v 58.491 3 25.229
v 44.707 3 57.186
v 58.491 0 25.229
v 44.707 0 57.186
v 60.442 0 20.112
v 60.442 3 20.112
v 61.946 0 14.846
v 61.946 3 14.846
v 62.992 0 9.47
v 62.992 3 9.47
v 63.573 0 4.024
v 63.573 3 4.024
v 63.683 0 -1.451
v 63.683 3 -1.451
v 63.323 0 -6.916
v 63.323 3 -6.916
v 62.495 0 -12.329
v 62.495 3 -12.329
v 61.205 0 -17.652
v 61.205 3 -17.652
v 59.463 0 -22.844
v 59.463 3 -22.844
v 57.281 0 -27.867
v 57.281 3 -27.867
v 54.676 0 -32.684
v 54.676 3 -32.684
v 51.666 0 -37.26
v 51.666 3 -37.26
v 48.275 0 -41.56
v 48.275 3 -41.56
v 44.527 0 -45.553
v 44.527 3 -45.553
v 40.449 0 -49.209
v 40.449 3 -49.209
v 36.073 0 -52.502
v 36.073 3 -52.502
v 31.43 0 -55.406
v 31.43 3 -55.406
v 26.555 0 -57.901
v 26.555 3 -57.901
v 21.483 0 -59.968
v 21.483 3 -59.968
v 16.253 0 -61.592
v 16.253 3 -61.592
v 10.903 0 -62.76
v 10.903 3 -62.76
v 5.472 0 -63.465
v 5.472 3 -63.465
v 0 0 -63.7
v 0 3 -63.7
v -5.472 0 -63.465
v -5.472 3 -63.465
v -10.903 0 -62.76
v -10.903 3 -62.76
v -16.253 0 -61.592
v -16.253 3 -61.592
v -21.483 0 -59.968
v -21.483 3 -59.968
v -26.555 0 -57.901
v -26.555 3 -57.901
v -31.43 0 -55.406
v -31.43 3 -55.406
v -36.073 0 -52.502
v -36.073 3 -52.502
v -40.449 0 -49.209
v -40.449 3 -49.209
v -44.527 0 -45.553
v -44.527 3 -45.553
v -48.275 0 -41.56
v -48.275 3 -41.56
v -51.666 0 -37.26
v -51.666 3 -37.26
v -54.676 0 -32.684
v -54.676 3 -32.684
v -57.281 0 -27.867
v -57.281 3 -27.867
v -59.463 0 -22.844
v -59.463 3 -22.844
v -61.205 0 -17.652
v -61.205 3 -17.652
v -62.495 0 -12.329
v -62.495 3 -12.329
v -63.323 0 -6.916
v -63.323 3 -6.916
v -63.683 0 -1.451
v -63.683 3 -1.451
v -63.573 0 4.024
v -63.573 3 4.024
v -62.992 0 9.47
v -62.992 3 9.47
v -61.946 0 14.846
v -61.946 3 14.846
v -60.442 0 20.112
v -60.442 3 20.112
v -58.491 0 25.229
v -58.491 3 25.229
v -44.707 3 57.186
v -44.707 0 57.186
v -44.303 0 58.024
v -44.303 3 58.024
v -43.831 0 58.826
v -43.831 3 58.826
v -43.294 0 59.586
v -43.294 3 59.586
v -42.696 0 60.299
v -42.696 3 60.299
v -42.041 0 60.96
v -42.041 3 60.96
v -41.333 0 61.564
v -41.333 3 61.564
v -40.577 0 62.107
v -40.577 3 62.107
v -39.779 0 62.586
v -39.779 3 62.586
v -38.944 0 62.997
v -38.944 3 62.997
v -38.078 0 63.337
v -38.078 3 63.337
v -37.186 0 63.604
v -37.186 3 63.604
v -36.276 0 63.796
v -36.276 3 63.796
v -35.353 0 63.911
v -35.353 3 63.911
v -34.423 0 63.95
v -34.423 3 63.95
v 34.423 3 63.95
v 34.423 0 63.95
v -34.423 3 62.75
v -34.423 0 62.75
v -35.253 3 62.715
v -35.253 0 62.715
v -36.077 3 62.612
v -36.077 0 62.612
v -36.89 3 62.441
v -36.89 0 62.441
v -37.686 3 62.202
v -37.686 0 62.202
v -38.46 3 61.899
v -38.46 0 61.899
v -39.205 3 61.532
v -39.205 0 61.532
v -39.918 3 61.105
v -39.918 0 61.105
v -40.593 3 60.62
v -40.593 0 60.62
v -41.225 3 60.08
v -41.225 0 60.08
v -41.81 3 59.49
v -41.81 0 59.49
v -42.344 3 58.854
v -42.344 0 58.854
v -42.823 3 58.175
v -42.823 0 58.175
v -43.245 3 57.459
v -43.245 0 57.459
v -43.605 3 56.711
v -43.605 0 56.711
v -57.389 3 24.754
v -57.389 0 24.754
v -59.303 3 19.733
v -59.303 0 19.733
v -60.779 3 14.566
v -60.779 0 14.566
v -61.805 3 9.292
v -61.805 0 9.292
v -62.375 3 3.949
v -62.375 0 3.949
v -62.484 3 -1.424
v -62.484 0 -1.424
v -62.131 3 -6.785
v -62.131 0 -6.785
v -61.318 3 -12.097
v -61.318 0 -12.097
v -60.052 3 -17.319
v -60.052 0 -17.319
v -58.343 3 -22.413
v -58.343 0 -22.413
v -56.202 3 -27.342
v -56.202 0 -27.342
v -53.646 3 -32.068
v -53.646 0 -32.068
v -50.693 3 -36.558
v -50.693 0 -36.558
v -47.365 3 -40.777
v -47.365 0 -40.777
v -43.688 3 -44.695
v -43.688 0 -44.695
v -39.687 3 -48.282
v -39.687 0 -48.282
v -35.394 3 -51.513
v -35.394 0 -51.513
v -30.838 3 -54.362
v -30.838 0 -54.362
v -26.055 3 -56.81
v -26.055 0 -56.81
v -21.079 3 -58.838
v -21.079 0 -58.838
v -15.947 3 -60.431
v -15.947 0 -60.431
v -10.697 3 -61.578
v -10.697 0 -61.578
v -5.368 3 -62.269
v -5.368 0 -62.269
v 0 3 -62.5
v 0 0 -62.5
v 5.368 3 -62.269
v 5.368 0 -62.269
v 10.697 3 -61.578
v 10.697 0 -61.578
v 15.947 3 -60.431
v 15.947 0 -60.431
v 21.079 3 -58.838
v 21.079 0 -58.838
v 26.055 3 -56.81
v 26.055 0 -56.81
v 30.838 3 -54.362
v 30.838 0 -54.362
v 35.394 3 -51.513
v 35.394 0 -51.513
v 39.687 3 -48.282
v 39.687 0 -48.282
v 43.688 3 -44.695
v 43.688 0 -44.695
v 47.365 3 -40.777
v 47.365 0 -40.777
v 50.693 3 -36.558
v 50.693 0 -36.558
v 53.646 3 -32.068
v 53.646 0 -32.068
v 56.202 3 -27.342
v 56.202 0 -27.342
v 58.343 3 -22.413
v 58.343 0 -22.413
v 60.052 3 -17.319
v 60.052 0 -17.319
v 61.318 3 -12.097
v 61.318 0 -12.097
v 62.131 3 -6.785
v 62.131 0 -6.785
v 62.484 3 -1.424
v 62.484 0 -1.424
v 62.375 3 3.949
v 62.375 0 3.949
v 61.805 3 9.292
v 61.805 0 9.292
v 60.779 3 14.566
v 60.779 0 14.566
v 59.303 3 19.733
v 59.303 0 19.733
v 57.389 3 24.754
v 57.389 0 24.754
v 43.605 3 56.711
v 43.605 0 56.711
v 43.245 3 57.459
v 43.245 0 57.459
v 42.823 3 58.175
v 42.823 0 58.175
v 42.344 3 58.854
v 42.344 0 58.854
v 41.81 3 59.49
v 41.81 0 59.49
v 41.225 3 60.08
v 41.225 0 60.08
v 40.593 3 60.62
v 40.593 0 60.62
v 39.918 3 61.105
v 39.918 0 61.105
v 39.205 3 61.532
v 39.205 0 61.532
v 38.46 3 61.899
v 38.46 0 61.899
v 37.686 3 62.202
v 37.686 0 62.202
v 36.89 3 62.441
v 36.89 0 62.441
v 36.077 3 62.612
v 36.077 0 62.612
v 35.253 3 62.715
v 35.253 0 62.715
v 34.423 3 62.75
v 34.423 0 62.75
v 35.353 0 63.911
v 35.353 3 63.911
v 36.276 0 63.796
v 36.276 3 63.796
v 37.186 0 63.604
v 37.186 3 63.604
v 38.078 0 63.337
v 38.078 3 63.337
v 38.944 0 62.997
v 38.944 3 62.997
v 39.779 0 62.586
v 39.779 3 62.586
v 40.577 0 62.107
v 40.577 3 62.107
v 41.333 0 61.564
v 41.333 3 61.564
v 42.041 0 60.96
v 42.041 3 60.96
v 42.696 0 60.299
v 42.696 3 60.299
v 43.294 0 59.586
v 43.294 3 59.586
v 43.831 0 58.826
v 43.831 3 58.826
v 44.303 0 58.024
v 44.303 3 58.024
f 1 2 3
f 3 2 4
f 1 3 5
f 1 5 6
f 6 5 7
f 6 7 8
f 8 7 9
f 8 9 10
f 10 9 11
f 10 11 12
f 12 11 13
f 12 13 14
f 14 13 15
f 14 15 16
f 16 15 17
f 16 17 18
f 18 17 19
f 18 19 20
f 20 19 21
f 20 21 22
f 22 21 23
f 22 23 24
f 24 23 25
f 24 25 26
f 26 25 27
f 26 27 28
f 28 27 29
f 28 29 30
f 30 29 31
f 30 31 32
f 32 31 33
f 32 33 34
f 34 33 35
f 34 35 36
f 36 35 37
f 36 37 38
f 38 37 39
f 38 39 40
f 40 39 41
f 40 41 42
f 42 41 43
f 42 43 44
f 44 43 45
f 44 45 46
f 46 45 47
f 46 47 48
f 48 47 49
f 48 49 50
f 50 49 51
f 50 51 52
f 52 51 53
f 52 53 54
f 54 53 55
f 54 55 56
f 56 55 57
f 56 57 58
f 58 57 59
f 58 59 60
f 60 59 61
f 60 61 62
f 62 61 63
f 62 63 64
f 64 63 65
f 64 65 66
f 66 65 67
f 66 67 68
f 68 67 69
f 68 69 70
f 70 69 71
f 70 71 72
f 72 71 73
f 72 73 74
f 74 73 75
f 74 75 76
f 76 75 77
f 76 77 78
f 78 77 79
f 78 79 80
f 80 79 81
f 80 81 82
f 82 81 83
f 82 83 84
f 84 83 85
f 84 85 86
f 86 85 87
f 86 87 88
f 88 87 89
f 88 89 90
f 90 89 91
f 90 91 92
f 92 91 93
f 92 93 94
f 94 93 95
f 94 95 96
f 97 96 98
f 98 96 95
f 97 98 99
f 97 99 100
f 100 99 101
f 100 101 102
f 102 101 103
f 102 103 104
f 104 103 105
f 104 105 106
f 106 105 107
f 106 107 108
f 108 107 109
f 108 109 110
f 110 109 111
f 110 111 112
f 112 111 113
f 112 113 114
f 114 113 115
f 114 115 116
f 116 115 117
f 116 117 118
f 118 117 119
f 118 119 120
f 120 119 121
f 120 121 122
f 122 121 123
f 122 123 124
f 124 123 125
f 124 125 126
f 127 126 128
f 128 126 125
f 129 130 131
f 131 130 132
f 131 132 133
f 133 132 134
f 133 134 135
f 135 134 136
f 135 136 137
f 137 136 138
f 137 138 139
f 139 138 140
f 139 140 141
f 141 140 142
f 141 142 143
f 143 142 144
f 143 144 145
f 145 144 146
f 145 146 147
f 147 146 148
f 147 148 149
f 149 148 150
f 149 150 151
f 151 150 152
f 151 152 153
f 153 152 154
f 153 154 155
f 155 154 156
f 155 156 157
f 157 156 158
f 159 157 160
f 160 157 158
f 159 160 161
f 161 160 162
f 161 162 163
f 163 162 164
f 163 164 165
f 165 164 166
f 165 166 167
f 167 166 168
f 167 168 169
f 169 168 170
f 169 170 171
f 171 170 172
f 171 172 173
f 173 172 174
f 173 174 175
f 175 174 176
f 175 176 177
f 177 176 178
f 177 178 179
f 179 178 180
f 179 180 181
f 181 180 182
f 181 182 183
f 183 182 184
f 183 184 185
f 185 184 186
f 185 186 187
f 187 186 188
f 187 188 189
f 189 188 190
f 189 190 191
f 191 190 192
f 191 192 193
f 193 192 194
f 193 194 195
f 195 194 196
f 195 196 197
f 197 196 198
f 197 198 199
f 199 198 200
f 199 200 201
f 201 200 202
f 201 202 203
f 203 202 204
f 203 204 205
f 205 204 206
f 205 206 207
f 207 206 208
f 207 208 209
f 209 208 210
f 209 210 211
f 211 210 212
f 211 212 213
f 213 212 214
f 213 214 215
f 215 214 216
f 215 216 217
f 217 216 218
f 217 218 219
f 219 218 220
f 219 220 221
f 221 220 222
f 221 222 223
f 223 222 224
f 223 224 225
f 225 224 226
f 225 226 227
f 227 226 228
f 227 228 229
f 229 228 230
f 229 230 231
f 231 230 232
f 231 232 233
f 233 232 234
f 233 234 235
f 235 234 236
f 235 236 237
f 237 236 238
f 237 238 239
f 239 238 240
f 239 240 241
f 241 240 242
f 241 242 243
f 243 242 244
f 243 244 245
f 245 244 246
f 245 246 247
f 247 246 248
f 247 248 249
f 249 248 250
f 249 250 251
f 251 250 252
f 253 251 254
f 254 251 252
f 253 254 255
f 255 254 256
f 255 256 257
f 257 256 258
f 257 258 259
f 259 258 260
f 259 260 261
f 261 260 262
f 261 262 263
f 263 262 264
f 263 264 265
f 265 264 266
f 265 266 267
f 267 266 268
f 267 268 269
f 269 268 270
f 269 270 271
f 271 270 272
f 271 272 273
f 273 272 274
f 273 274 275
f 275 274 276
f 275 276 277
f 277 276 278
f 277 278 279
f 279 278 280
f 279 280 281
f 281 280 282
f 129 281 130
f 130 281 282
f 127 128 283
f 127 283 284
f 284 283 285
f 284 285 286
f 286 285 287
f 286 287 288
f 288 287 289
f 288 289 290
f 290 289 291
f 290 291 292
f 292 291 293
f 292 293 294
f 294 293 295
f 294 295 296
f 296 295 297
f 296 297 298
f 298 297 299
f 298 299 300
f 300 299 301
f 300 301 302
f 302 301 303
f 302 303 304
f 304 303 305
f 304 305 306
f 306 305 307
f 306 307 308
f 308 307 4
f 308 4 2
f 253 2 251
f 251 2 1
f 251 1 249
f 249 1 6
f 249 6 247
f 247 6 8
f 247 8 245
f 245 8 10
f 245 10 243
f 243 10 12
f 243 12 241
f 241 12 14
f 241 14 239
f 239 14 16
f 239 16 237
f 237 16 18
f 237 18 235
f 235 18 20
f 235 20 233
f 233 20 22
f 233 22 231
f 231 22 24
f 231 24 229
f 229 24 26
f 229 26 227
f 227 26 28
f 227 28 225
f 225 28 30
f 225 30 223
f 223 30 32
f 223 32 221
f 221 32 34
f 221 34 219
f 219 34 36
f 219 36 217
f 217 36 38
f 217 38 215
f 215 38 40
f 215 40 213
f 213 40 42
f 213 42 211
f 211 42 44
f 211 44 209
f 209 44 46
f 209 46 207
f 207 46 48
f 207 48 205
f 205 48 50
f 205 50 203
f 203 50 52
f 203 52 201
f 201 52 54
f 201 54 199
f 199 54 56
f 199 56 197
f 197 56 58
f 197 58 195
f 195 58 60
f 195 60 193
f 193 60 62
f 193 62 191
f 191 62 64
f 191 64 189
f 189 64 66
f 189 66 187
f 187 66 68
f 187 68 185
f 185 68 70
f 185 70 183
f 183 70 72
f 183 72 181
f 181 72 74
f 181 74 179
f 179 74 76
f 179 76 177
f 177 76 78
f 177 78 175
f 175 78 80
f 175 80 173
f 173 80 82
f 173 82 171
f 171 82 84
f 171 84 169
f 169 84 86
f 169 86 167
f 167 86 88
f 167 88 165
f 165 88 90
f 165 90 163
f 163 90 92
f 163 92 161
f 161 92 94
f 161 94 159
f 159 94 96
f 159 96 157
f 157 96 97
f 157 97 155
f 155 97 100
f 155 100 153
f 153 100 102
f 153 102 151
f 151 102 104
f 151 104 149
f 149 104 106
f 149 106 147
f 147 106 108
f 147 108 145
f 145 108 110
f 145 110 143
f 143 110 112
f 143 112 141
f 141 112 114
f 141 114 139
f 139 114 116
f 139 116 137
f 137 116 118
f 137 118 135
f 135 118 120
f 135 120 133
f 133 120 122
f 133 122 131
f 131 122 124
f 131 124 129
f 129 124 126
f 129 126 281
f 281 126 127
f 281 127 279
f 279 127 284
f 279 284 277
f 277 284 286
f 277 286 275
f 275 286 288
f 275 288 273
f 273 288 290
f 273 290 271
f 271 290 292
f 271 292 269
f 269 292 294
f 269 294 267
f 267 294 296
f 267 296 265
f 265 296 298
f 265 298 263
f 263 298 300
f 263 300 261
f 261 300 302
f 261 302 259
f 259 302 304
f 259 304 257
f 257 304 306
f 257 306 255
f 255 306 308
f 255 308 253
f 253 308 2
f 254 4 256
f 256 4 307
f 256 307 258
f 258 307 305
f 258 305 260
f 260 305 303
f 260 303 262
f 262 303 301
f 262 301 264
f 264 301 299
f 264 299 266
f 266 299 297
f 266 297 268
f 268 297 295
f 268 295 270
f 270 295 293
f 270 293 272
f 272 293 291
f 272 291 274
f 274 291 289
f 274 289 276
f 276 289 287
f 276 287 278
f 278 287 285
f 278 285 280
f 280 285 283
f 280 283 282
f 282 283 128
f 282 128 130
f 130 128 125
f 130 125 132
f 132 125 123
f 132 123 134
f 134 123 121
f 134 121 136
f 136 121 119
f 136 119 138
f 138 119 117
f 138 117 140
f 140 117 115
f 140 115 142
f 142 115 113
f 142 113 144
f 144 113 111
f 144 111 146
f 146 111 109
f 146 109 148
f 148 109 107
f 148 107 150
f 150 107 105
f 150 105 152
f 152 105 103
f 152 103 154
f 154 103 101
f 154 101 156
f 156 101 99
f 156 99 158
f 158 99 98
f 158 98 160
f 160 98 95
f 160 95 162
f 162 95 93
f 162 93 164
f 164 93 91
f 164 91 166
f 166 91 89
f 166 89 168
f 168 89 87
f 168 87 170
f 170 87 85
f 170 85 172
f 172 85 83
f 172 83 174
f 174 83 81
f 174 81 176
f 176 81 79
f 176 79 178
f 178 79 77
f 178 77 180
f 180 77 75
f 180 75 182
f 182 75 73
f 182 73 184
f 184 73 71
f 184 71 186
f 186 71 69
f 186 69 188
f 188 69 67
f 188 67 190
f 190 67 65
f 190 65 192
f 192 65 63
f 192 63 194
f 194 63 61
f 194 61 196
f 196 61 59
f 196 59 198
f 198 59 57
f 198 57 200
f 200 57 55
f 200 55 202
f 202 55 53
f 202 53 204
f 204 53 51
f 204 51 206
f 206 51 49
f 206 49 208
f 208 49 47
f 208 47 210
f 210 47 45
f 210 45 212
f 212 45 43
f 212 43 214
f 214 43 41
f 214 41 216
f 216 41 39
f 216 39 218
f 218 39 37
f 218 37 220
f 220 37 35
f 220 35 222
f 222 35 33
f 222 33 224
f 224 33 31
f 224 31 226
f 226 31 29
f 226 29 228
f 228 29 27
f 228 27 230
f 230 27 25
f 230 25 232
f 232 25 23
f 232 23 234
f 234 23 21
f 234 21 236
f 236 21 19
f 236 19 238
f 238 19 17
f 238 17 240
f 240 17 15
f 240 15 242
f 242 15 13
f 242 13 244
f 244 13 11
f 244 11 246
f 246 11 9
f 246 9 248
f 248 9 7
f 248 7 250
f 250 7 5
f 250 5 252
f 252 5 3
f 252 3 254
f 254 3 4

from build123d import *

# Parameters (mm, degrees)
BOSS_EXTRUDE1_DEPTH = 3


with BuildPart() as part:
    # Sketch1 → Boss-Extrude1 (new body)
    with BuildSketch(Plane(origin=(0, 0, 0), x_dir=(1, 0, 0), z_dir=(0, 1, 0))):
        with BuildLine():
            ThreePointArc((34.422746677, -63.95), (40.577345115, -62.107399108), (44.706859879, -57.185878226))
            Line((44.706859879, -57.185878226), (58.490893839, -25.229057412))
            ThreePointArc((58.490893839, -25.229057412), (0, 63.7), (-58.490893839, -25.229057412))
            Line((-58.490893839, -25.229057412), (-44.706859879, -57.185878226))
            ThreePointArc((-44.706859879, -57.185878226), (-40.577345115, -62.107399108), (-34.422746677, -63.95))
            Line((-34.422746677, -63.95), (34.422746677, -63.95))
        make_face()
        with BuildLine():
            Line((34.422746677, -62.75), (-34.422746677, -62.75))
            ThreePointArc((-34.422746677, -62.75), (-39.917923854, -61.104820632), (-43.604990608, -56.710605559))
            Line((-43.604990608, -56.710605559), (-57.389024568, -24.753784745))
            ThreePointArc((-57.389024568, -24.753784745), (-12.637957994, 61.208921063), (62.5, 0))
            ThreePointArc((62.5, 0), (61.208921063, -12.637957994), (57.389024568, -24.753784745))
            Line((57.389024568, -24.753784745), (43.604990608, -56.710605559))
            ThreePointArc((43.604990608, -56.710605559), (39.917923854, -61.104820632), (34.422746677, -62.75))
        make_face(mode=Mode.SUBTRACT)
    extrude(amount=BOSS_EXTRUDE1_DEPTH)


solid = part.part
